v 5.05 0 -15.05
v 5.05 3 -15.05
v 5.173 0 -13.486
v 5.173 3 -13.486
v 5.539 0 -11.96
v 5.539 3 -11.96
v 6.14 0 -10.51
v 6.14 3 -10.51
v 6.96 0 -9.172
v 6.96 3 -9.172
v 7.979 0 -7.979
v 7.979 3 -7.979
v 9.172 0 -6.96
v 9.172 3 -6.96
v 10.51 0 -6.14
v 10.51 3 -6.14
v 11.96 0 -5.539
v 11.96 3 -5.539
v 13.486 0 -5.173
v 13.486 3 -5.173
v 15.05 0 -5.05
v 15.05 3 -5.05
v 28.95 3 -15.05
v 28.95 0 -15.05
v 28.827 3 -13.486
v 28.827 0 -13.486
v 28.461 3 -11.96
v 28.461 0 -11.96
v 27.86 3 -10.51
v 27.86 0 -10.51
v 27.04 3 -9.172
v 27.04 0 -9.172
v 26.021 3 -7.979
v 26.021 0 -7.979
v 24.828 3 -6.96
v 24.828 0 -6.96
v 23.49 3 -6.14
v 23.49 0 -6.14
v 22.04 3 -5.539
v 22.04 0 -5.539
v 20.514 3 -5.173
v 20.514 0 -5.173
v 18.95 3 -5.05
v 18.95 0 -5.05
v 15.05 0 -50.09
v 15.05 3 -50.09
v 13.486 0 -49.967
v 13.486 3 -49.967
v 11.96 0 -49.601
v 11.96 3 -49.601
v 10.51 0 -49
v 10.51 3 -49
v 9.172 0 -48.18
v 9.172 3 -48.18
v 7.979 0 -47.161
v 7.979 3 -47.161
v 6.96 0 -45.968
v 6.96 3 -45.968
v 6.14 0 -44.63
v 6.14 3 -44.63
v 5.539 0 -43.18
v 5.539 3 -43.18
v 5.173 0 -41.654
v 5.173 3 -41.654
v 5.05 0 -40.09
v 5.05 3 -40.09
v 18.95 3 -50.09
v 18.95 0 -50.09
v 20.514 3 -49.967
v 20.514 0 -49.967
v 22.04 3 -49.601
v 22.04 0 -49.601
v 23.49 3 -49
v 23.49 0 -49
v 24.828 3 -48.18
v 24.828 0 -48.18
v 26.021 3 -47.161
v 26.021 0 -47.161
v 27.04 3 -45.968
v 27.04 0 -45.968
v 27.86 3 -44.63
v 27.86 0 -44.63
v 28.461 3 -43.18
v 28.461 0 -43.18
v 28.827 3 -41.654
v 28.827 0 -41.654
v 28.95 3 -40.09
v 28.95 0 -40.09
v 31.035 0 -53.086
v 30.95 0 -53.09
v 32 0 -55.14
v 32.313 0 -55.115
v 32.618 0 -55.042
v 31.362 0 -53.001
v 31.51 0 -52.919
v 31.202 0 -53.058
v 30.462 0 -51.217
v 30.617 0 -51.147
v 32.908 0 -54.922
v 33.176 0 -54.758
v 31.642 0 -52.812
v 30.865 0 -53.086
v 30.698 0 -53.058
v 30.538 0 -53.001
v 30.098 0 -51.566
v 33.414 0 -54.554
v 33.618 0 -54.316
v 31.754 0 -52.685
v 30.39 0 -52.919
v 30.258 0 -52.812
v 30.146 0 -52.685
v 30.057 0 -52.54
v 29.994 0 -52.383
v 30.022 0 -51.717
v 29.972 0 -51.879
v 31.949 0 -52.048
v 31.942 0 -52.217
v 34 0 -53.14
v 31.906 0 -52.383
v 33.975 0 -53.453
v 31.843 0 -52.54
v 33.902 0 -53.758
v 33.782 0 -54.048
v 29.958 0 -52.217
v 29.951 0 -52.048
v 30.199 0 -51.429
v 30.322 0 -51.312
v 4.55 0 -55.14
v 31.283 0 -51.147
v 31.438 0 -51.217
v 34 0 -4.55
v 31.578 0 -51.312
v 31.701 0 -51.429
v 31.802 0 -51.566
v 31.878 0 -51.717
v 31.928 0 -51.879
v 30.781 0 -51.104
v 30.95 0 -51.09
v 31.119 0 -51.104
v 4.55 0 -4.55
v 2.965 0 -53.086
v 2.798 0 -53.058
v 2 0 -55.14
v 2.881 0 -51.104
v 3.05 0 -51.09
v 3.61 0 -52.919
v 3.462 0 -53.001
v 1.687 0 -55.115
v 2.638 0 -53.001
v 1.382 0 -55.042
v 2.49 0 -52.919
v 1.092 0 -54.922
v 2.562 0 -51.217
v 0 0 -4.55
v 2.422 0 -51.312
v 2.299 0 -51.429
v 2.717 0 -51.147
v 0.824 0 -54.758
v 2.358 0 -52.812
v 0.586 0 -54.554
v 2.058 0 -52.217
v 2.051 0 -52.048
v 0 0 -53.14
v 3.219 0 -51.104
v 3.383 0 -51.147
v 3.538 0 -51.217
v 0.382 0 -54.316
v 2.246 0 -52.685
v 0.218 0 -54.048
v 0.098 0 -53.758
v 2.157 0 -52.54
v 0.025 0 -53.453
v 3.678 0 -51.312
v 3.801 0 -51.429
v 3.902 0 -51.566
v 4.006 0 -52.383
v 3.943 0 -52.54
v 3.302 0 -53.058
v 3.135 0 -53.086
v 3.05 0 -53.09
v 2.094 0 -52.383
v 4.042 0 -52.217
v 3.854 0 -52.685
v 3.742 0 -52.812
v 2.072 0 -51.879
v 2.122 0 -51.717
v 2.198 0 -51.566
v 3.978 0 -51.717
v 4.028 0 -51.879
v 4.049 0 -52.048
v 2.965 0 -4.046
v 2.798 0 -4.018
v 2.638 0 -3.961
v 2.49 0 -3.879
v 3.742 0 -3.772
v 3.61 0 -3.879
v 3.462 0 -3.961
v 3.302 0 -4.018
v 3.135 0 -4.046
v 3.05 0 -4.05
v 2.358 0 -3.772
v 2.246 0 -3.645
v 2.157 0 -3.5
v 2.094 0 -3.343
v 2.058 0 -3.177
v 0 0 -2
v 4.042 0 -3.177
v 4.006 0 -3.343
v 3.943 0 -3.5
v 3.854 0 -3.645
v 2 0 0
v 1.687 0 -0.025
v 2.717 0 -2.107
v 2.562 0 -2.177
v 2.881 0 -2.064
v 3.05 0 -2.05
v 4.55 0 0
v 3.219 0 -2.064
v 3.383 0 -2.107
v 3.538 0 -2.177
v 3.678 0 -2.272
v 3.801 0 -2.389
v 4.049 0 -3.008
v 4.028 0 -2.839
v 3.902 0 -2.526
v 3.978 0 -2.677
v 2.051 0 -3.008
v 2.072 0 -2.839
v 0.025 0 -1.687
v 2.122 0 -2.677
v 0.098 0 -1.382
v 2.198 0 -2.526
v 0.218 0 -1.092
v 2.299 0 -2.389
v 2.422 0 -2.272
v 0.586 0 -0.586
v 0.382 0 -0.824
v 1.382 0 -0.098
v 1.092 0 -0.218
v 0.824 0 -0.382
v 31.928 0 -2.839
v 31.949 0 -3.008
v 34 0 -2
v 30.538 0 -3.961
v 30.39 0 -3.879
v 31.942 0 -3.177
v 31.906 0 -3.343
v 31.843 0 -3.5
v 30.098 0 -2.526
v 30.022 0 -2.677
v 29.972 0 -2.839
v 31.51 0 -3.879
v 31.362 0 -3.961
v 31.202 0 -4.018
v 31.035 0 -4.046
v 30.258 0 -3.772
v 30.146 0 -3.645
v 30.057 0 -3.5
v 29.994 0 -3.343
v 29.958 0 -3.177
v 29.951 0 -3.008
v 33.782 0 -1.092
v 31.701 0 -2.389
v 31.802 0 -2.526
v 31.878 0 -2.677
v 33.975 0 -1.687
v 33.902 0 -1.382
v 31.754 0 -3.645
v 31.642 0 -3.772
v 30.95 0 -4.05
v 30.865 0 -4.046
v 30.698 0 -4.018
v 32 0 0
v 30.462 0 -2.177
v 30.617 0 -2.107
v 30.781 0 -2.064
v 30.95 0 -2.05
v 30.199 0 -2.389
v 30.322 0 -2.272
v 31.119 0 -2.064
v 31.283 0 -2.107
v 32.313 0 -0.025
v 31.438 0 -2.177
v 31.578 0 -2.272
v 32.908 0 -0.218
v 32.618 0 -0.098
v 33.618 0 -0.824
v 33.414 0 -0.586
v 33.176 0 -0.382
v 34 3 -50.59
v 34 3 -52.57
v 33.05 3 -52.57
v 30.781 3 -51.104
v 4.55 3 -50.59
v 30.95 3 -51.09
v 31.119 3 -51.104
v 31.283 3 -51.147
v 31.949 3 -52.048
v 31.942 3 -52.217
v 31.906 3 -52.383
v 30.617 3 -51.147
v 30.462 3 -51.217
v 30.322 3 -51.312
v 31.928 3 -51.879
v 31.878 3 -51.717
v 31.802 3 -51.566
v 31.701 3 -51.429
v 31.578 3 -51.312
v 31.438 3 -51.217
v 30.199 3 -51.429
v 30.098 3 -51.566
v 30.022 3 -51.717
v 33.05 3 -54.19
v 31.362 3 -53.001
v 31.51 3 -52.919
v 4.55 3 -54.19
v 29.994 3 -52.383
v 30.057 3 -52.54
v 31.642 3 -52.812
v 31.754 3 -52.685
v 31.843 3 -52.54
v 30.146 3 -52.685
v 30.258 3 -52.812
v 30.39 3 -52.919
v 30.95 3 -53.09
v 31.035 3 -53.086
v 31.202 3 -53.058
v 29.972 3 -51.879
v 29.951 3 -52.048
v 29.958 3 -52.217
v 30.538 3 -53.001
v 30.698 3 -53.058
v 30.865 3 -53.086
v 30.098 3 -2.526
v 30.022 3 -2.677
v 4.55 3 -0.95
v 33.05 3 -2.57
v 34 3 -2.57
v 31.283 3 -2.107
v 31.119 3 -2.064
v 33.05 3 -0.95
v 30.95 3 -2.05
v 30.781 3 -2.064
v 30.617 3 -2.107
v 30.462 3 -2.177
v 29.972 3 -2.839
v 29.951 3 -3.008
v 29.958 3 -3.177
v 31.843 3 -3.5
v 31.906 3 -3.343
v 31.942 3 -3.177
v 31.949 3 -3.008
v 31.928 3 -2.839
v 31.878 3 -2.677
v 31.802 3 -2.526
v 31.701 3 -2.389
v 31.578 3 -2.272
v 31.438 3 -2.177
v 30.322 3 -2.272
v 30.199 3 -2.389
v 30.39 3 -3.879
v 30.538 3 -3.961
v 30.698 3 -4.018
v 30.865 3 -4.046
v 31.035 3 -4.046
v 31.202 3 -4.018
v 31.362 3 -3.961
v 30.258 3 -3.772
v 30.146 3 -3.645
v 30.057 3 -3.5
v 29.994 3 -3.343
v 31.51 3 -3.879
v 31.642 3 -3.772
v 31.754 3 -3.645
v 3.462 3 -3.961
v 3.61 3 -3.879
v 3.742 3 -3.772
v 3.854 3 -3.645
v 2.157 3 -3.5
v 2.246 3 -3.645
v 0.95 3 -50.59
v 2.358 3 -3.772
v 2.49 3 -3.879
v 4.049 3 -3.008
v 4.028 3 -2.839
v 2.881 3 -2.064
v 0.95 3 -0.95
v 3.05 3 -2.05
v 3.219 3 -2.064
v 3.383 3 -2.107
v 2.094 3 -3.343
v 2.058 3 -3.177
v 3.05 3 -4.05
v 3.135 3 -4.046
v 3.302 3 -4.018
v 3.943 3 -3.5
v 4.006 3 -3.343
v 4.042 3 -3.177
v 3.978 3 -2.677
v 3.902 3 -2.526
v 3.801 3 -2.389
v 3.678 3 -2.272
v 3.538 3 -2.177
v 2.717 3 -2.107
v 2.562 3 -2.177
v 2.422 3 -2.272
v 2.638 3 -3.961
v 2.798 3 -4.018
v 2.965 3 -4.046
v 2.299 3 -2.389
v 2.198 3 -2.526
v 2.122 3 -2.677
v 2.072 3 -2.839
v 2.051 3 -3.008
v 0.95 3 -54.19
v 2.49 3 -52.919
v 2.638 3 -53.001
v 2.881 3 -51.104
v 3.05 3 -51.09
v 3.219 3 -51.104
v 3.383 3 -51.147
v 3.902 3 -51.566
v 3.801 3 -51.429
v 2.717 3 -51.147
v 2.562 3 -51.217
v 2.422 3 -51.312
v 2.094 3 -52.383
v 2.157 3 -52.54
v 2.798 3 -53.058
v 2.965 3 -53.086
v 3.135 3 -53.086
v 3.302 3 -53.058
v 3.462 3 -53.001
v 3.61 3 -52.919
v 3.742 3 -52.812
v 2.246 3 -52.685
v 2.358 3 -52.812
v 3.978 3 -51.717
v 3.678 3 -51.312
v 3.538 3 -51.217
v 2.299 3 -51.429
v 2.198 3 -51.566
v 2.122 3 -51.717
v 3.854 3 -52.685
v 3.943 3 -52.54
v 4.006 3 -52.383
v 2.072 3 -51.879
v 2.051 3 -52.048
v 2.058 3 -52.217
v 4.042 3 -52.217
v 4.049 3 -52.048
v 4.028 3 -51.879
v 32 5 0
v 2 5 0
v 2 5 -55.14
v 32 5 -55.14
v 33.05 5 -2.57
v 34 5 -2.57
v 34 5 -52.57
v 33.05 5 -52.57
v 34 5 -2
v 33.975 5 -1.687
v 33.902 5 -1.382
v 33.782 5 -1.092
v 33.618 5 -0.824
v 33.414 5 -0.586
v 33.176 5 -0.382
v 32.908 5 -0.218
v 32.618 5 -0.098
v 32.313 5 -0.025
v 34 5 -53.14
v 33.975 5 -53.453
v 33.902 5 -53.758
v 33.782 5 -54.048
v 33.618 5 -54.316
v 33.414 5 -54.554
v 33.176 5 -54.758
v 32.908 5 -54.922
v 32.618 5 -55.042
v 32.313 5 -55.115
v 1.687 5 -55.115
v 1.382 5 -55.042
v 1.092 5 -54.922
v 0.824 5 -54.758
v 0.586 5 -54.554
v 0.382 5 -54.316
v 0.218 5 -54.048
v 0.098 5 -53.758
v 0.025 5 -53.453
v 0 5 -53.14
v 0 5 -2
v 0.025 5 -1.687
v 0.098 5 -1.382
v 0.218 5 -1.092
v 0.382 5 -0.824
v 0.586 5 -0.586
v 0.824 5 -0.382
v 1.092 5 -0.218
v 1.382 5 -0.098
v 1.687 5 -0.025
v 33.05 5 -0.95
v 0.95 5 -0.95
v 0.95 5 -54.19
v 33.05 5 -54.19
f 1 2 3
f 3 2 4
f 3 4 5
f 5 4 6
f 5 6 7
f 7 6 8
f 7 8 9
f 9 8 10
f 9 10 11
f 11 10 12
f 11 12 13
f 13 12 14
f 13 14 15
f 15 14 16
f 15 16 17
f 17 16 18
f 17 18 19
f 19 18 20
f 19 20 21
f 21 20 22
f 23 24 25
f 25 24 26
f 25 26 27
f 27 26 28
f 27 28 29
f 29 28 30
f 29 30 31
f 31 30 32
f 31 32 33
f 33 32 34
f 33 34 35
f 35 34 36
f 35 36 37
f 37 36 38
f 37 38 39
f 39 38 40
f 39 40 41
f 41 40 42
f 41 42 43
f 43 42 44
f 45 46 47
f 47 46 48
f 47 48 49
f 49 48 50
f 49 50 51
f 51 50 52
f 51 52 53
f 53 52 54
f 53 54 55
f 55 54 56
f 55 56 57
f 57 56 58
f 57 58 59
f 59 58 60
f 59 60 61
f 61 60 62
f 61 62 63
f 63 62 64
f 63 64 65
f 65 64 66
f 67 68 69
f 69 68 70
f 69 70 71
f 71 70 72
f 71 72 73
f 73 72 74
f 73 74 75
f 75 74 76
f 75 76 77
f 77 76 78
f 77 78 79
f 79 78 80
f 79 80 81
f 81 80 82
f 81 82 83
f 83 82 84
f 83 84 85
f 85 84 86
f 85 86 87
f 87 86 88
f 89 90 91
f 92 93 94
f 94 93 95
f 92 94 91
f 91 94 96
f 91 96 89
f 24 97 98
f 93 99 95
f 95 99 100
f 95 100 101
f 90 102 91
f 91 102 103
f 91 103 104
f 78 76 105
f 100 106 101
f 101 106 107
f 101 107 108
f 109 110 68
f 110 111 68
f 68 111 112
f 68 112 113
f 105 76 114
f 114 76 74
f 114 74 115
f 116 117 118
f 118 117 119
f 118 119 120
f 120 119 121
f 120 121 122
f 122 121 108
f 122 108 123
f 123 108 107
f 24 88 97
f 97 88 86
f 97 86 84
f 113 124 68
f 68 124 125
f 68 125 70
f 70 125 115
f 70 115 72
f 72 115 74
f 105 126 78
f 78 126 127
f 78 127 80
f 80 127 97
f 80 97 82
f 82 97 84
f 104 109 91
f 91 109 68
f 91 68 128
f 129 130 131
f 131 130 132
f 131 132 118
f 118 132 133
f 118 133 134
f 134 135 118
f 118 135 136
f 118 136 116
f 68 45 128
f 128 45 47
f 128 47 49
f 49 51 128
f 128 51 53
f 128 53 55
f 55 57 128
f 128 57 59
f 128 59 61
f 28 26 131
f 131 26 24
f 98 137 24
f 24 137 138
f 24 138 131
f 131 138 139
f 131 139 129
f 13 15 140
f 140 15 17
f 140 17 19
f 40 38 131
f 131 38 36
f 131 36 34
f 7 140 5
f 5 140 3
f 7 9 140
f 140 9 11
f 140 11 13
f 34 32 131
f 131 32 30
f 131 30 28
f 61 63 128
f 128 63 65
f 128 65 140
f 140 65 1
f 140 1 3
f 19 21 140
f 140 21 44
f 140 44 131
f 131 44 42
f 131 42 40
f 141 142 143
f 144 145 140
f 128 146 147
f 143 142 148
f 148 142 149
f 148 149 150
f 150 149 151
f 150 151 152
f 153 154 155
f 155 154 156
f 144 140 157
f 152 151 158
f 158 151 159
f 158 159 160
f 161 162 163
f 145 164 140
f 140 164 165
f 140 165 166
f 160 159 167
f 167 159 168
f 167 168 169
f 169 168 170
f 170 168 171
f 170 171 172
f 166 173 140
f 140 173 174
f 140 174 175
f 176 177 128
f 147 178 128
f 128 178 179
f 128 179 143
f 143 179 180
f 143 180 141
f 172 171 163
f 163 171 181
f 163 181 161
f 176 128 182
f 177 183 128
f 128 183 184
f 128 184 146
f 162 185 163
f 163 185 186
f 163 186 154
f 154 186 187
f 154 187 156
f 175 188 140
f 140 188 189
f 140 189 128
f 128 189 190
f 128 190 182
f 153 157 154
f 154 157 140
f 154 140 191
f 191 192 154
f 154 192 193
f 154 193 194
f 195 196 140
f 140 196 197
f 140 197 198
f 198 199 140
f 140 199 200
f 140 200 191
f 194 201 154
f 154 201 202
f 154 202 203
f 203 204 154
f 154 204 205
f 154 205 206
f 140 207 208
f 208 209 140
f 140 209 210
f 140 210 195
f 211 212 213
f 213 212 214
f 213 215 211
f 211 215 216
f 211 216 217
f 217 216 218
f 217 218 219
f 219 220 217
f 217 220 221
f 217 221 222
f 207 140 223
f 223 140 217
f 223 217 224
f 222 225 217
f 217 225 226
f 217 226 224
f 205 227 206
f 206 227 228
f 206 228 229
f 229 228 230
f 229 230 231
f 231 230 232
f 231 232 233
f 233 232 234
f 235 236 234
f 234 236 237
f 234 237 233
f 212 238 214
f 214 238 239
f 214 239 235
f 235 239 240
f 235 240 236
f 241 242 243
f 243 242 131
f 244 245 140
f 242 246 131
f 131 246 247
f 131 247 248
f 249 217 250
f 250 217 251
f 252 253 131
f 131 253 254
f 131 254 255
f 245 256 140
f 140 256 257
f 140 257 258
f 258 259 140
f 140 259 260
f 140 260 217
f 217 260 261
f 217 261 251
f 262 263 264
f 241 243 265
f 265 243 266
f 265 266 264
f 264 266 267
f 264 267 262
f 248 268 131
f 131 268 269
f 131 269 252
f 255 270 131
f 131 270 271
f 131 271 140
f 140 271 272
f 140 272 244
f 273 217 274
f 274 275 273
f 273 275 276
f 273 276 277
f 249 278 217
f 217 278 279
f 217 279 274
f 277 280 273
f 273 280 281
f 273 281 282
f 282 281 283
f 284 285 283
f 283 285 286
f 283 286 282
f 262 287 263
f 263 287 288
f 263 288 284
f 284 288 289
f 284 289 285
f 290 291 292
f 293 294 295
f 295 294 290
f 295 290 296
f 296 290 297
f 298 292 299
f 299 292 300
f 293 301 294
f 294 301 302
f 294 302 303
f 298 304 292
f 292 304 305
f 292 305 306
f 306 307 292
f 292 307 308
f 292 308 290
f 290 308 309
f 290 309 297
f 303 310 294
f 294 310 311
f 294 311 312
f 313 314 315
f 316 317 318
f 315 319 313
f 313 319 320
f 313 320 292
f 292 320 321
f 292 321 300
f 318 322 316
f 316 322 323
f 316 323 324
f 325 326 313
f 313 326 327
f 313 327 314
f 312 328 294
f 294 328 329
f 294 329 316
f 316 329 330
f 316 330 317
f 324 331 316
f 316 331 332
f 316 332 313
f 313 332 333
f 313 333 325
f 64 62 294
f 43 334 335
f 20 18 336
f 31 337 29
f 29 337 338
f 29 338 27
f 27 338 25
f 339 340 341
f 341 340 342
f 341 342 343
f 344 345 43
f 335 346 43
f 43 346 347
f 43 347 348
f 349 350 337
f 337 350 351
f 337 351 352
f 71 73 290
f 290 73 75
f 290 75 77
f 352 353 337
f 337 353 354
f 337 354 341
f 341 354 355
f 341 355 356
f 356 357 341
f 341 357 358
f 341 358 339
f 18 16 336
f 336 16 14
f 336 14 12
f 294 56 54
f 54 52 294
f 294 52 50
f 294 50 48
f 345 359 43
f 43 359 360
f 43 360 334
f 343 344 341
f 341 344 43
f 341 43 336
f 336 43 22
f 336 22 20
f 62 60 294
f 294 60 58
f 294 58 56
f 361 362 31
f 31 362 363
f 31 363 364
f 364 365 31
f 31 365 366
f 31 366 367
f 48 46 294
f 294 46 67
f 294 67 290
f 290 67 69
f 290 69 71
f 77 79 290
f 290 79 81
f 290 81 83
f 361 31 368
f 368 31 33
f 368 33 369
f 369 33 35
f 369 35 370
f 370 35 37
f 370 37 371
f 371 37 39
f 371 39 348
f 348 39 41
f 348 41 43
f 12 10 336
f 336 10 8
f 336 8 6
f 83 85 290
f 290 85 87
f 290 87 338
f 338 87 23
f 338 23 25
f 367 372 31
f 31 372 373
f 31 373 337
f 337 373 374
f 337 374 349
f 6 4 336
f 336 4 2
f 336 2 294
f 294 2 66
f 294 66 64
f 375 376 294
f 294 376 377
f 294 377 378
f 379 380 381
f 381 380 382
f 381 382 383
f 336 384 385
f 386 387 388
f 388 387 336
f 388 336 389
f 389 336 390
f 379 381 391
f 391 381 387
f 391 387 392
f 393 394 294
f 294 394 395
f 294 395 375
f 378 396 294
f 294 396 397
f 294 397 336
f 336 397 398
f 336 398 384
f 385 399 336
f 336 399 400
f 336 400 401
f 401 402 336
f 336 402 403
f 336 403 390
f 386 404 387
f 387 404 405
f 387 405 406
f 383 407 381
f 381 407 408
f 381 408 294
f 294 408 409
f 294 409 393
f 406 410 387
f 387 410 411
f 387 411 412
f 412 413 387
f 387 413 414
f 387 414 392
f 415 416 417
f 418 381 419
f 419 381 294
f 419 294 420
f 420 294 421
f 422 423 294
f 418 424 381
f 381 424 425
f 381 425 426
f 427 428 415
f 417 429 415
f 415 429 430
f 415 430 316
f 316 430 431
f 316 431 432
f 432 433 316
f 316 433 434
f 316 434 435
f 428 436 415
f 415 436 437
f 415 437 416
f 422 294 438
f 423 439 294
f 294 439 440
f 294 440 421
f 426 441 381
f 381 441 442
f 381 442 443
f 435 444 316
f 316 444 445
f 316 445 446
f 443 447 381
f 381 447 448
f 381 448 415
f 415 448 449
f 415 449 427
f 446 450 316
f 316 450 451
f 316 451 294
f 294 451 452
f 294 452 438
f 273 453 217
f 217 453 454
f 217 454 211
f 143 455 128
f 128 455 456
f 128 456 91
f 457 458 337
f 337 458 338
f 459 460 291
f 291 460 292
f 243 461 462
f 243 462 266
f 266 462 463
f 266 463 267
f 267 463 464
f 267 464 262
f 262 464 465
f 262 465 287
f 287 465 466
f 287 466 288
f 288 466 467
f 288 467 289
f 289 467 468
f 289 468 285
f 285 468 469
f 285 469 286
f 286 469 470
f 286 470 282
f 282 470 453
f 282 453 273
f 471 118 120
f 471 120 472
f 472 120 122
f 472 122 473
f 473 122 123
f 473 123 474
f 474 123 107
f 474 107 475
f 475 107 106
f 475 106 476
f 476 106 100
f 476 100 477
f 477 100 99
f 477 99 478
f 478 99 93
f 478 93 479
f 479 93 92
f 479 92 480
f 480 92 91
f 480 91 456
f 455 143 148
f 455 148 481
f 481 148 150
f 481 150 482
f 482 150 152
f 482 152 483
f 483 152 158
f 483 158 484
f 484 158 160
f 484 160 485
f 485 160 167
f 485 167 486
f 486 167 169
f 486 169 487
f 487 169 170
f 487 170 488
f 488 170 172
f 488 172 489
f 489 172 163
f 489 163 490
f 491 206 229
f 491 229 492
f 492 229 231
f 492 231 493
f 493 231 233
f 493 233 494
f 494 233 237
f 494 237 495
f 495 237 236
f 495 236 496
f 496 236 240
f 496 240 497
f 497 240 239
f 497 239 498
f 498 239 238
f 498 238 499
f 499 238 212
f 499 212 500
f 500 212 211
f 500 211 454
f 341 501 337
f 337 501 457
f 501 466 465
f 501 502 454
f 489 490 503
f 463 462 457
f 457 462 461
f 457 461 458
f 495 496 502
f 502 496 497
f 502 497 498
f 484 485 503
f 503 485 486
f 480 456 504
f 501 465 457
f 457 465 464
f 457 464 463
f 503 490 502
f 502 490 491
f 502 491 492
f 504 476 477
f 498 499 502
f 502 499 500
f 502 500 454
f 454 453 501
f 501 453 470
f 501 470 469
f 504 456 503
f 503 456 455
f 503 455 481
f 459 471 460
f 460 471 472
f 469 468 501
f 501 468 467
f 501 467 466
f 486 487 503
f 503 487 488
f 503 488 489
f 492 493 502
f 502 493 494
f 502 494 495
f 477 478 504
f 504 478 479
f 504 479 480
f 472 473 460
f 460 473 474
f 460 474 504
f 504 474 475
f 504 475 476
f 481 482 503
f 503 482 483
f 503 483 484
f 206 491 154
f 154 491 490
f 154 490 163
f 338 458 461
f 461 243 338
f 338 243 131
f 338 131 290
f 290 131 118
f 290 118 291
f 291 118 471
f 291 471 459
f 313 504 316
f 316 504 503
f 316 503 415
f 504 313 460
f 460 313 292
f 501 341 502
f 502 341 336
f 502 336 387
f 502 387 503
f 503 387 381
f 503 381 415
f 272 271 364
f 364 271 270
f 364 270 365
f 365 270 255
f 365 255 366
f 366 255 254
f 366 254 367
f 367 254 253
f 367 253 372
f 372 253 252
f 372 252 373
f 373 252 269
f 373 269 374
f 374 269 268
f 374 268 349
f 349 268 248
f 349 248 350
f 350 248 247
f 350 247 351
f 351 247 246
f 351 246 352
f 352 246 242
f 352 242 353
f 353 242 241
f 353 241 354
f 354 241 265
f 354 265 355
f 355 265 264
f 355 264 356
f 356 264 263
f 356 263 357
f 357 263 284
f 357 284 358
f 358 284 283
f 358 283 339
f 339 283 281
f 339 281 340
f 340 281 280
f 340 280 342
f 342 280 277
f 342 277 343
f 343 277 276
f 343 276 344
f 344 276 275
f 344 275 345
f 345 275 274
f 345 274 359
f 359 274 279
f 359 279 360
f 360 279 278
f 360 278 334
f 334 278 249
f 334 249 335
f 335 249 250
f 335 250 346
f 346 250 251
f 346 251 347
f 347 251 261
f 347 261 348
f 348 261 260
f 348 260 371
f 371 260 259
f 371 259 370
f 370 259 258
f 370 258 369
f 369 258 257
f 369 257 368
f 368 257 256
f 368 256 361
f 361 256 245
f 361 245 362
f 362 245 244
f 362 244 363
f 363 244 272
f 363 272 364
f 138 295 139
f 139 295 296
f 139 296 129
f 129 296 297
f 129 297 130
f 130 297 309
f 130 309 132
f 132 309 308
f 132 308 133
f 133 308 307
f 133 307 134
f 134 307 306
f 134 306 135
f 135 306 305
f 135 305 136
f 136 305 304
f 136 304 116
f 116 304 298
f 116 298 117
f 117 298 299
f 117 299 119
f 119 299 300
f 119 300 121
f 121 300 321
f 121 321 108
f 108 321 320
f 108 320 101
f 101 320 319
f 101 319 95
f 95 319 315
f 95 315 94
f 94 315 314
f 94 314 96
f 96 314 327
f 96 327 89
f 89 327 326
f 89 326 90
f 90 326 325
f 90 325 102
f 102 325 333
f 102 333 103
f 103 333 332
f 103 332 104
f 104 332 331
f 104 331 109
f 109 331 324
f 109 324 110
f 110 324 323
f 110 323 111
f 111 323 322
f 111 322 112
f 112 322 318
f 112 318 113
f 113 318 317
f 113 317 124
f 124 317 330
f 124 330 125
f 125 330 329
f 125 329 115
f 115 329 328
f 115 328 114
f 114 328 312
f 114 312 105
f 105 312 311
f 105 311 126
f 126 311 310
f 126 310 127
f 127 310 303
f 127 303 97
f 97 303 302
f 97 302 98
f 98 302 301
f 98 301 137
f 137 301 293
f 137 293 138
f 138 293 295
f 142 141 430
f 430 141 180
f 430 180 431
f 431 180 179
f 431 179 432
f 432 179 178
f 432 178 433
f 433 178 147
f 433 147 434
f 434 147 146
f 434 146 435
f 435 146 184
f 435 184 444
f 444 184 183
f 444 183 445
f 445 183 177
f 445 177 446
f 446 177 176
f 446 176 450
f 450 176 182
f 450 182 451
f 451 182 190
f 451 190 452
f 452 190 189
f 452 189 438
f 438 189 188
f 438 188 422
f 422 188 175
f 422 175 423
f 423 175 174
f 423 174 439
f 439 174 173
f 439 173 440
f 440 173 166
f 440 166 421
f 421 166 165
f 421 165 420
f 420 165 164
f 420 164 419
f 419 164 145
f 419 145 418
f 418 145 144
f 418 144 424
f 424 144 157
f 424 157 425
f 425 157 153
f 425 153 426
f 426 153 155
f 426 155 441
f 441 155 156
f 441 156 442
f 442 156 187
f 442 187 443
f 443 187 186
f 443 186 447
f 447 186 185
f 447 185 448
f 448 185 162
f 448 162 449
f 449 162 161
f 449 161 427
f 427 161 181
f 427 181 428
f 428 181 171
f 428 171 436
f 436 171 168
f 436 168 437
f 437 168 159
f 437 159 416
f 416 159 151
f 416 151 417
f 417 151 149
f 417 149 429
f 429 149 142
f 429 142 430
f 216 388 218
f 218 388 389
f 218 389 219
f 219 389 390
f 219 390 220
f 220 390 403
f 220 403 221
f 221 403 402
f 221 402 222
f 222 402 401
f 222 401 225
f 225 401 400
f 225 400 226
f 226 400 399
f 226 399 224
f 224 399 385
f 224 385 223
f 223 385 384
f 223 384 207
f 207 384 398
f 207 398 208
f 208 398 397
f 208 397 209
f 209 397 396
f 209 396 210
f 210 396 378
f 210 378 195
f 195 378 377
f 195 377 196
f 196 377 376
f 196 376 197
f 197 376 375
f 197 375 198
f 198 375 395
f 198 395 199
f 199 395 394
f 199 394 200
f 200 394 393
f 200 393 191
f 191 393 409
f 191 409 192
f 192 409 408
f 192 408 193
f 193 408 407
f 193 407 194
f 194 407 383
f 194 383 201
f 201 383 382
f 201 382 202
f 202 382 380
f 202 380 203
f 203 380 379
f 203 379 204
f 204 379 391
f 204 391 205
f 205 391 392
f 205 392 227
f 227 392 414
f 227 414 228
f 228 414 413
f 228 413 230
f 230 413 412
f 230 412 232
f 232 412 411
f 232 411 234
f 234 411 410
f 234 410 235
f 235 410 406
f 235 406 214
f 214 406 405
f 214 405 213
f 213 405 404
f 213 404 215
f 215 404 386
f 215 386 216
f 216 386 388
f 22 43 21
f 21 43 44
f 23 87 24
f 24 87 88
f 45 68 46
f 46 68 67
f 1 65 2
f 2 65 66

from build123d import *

# Parameters (mm, degrees)
SKETCH_1_W          = 34
SKETCH_1_H          = 55.14
EXTRUDE_1_DEPTH     = 5
SKETCH_2_W          = 32.1
SKETCH_2_H          = 53.24
CUT_EXTRUDE_1_DEPTH = 2
SKETCH_3_W          = 50
SKETCH_3_H          = 10
CUT_EXTRUDE_2_DEPTH = 2
FILLET_3_R          = 2
FILLET_4_R          = 2
FILLET_5_R          = 2
FILLET_6_R          = 2
SKETCH_5_R          = 1
CUT_EXTRUDE_3_DEPTH = 5
CUT_EXTRUDE_5_DEPTH = 5
SKETCH_7_W          = 24.577640881
SKETCH_7_H          = 46.089683544
EXTRUDE_3_DEPTH     = 3
SKETCH_8_W          = 20
SKETCH_8_H          = 6
EXTRUDE_5_DEPTH     = 5
SKETCH_9_W          = 20
SKETCH_9_H          = 6
EXTRUDE_6_DEPTH     = 5
CUT_EXTRUDE_6_DEPTH = 65.972452624
FILLET_7_R          = 2
FILLET_8_R          = 2
FILLET_9_R          = 2
FILLET_10_R         = 2
FILLET_11_R         = 2
FILLET_12_R         = 2
FILLET_13_R         = 2
FILLET_14_R         = 2
SKETCH_11_W         = 2
SKETCH_11_H         = 50
EXTRUDE_7_DEPTH     = 3
SKETCH_12_W         = 87.292454737
SKETCH_12_H         = 120.507181867
CUT_EXTRUDE_7_DEPTH = 10
SKETCH_13_W         = 23.9
SKETCH_13_H         = 45.04
CUT_EXTRUDE_8_DEPTH = 10
FILLET_15_R         = 10
FILLET_16_R         = 10
FILLET_17_R         = 10
FILLET_18_R         = 10


with BuildPart() as part:
    # 草图1 → 凸台-拉伸1 (new body)
    with BuildSketch(Plane(origin=(0, 0, 0), x_dir=(1, 0, 0), z_dir=(0, 1, 0))):
        with Locations((17, 27.57)):
            Rectangle(SKETCH_1_W, SKETCH_1_H)
    extrude(amount=EXTRUDE_1_DEPTH)

    # 草图2 → 切除-拉伸1 (cut)
    with BuildSketch(Plane(origin=(0, 5, 0), x_dir=(1, 0, 0), z_dir=(0, 1, 0))):
        with Locations((17, 27.57)):
            Rectangle(SKETCH_2_W, SKETCH_2_H)
    extrude(amount=-CUT_EXTRUDE_1_DEPTH, mode=Mode.SUBTRACT)

    # 草图3 → 切除-拉伸2 (cut)
    with BuildSketch(Plane(origin=(34, 0, 0), x_dir=(0, 0, -1), z_dir=(1, 0, 0))):
        with Locations((27.57, 5)):
            Rectangle(SKETCH_3_W, SKETCH_3_H)
    extrude(amount=-CUT_EXTRUDE_2_DEPTH, mode=Mode.SUBTRACT)

    # 圆角3
    fillet_3_edges = [part.edges().sort_by_distance(p)[0] for p in [
        (0, 2.5, 0),
    ]]
    fillet(fillet_3_edges, radius=FILLET_3_R)

    # 圆角4
    fillet_4_edges = [part.edges().sort_by_distance(p)[0] for p in [
        (0, 2.5, -55.14),
    ]]
    fillet(fillet_4_edges, radius=FILLET_4_R)

    # 圆角5
    fillet_5_edges = [part.edges().sort_by_distance(p)[0] for p in [
        (34, 2.5, -55.14),
    ]]
    fillet(fillet_5_edges, radius=FILLET_5_R)

    # 圆角6
    fillet_6_edges = [part.edges().sort_by_distance(p)[0] for p in [
        (34, 2.5, 0),
    ]]
    fillet(fillet_6_edges, radius=FILLET_6_R)

    # 草图5 → 切除-拉伸3 (cut)
    with BuildSketch(Plane(origin=(0, 3, 0), x_dir=(1, 0, 0), z_dir=(0, 1, 0))):
        with Locations(Location((3.05, 52.09, 0), (0, 0, 270))):
            Circle(SKETCH_5_R)
        with Locations(Location((3.05, 3.05, 0), (0, 0, 90))):
            Circle(SKETCH_5_R)
        with Locations(Location((30.95, 3.05, 0), (0, 0, 270))):
            Circle(SKETCH_5_R)
        with Locations(Location((30.95, 52.09, 0), (0, 0, 90))):
            Circle(SKETCH_5_R)
    extrude(amount=-CUT_EXTRUDE_3_DEPTH, mode=Mode.SUBTRACT)

    # 草图6 → 切除-拉伸5 (cut)
    with BuildSketch(Plane(origin=(0, 3, 0), x_dir=(1, 0, 0), z_dir=(0, 1, 0))):
        with BuildLine():
            ThreePointArc((5.05, 49.09), (5.342893219, 49.797106781), (6.05, 50.09))
            Line((6.05, 50.09), (6.254717451, 50.09))
            ThreePointArc((6.254717451, 50.09), (6.961824232, 49.797106781), (7.254717451, 49.09))
            Line((7.254717451, 49.09), (7.254717451, 6.05))
            ThreePointArc((7.254717451, 6.05), (6.961824232, 5.342893219), (6.254717451, 5.05))
            Line((6.254717451, 5.05), (6.05, 5.05))
            ThreePointArc((6.05, 5.05), (5.342893219, 5.342893219), (5.05, 6.05))
            Line((5.05, 6.05), (5.05, 49.09))
        make_face()
        with BuildLine():
            ThreePointArc((10.05, 49.09), (10.342893219, 49.797106781), (11.05, 50.09))
            Line((11.05, 50.09), (11.254717451, 50.09))
            ThreePointArc((11.254717451, 50.09), (11.961824232, 49.797106781), (12.254717451, 49.09))
            Line((12.254717451, 49.09), (12.254717451, 6.05))
            ThreePointArc((12.254717451, 6.05), (11.961824232, 5.342893219), (11.254717451, 5.05))
            Line((11.254717451, 5.05), (11.05, 5.05))
            ThreePointArc((11.05, 5.05), (10.342893219, 5.342893219), (10.05, 6.05))
            Line((10.05, 6.05), (10.05, 49.09))
        make_face()
        with BuildLine():
            ThreePointArc((20.05, 49.09), (20.342893219, 49.797106781), (21.05, 50.09))
            Line((21.05, 50.09), (21.254717451, 50.09))
            ThreePointArc((21.254717451, 50.09), (21.961824232, 49.797106781), (22.254717451, 49.09))
            Line((22.254717451, 49.09), (22.254717451, 6.05))
            ThreePointArc((22.254717451, 6.05), (21.961824232, 5.342893219), (21.254717451, 5.05))
            Line((21.254717451, 5.05), (21.05, 5.05))
            ThreePointArc((21.05, 5.05), (20.342893219, 5.342893219), (20.05, 6.05))
            Line((20.05, 6.05), (20.05, 49.09))
        make_face()
        with BuildLine():
            ThreePointArc((26.05, 5.05), (25.342893219, 5.342893219), (25.05, 6.05))
            Line((25.05, 6.05), (25.05, 49.09))
            ThreePointArc((25.05, 49.09), (25.342893219, 49.797106781), (26.05, 50.09))
            Line((26.05, 50.09), (26.254717451, 50.09))
            ThreePointArc((26.254717451, 50.09), (26.961824232, 49.797106781), (27.254717451, 49.09))
            Line((27.254717451, 49.09), (27.254717451, 6.05))
            ThreePointArc((27.254717451, 6.05), (26.961824232, 5.342893219), (26.254717451, 5.05))
            Line((26.254717451, 5.05), (26.05, 5.05))
        make_face()
        with BuildLine():
            Line((15.05, 49.09), (15.05, 6.05))
            ThreePointArc((15.05, 6.05), (15.342893219, 5.342893219), (16.05, 5.05))
            Line((16.05, 5.05), (16.254717451, 5.05))
            ThreePointArc((16.254717451, 5.05), (16.961824232, 5.342893219), (17.254717451, 6.05))
            Line((17.254717451, 6.05), (17.254717451, 49.09))
            ThreePointArc((17.254717451, 49.09), (16.961824232, 49.797106781), (16.254717451, 50.09))
            Line((16.254717451, 50.09), (16.05, 50.09))
            ThreePointArc((16.05, 50.09), (15.342893219, 49.797106781), (15.05, 49.09))
        make_face()
    extrude(amount=-CUT_EXTRUDE_5_DEPTH, mode=Mode.SUBTRACT)

    # 草图7 → 凸台-拉伸3 (add)
    with BuildSketch(Plane.XZ):
        with Locations((15.625766317, -27.57)):
            Rectangle(SKETCH_7_W, SKETCH_7_H)
    extrude(amount=-EXTRUDE_3_DEPTH)

    # 草图8 → 凸台-拉伸5 (add)
    with BuildSketch(Plane.XZ):
        with Locations((17, -3)):
            Rectangle(SKETCH_8_W, SKETCH_8_H)
    extrude(amount=EXTRUDE_5_DEPTH)

    # 草图9 → 凸台-拉伸6 (add)
    with BuildSketch(Plane.XZ):
        with Locations((17, -52.14)):
            Rectangle(SKETCH_9_W, SKETCH_9_H)
    extrude(amount=EXTRUDE_6_DEPTH)

    # 草图10 → 切除-拉伸6 (cut, through all)
    with BuildSketch(Plane(origin=(0, 0, -55.14), x_dir=(-1, 0, 0), z_dir=(0, 0, -1))):
        with BuildLine():
            ThreePointArc((-8, -2.5), (-11.414213562, -1.085786438), (-10, -4.5))
            Line((-10, -4.5), (-10, -2.5))
            Line((-10, -2.5), (-8, -2.5))
        make_face()
        with BuildLine():
            Line((-10, -2.5), (-10, -4.5))
            ThreePointArc((-10, -4.5), (-8.585786438, -3.914213562), (-8, -2.5))
            Line((-8, -2.5), (-10, -2.5))
        make_face()
        with BuildLine():
            ThreePointArc((-26, -2.5), (-25.414213562, -3.914213562), (-24, -4.5))
            Line((-24, -4.5), (-24, -2.5))
            Line((-24, -2.5), (-26, -2.5))
        make_face()
        with BuildLine():
            Line((-24, -2.5), (-24, -4.5))
            ThreePointArc((-24, -4.5), (-22.585786438, -3.914213562), (-22, -2.5))
            ThreePointArc((-22, -2.5), (-24, -0.5), (-26, -2.5))
            Line((-26, -2.5), (-24, -2.5))
        make_face()
    extrude(amount=-CUT_EXTRUDE_6_DEPTH, mode=Mode.SUBTRACT)

    # 圆角7
    fillet_7_edges = [part.edges().sort_by_distance(p)[0] for p in [
        (7, -5, -52.14),
    ]]
    fillet(fillet_7_edges, radius=FILLET_7_R)

    # 圆角8
    fillet_8_edges = [part.edges().sort_by_distance(p)[0] for p in [
        (7, 0, -52.14),
    ]]
    fillet(fillet_8_edges, radius=FILLET_8_R)

    # 圆角9
    fillet_9_edges = [part.edges().sort_by_distance(p)[0] for p in [
        (27, -5, -52.14),
    ]]
    fillet(fillet_9_edges, radius=FILLET_9_R)

    # 圆角10
    fillet_10_edges = [part.edges().sort_by_distance(p)[0] for p in [
        (27, 0, -52.14),
    ]]
    fillet(fillet_10_edges, radius=FILLET_10_R)

    # 圆角11
    fillet_11_edges = [part.edges().sort_by_distance(p)[0] for p in [
        (7, -5, -3),
    ]]
    fillet(fillet_11_edges, radius=FILLET_11_R)

    # 圆角12
    fillet_12_edges = [part.edges().sort_by_distance(p)[0] for p in [
        (7, 0, -3),
    ]]
    fillet(fillet_12_edges, radius=FILLET_12_R)

    # 圆角13
    fillet_13_edges = [part.edges().sort_by_distance(p)[0] for p in [
        (27, -5, -3),
    ]]
    fillet(fillet_13_edges, radius=FILLET_13_R)

    # 圆角14
    fillet_14_edges = [part.edges().sort_by_distance(p)[0] for p in [
        (27, 0, -3),
    ]]
    fillet(fillet_14_edges, radius=FILLET_14_R)

    # 草图11 → 凸台-拉伸7 (add)
    with BuildSketch(Plane.XZ):
        with Locations((33, -27.57)):
            Rectangle(SKETCH_11_W, SKETCH_11_H)
    extrude(amount=-EXTRUDE_7_DEPTH)

    # 草图12 → 切除-拉伸7 (cut)
    with BuildSketch(Plane.XZ):
        with Locations((-3.68135744, 1.129600161)):
            Rectangle(SKETCH_12_W, SKETCH_12_H)
    extrude(amount=CUT_EXTRUDE_7_DEPTH, mode=Mode.SUBTRACT)

    # 草图13 → 切除-拉伸8 (cut)
    with BuildSketch(Plane.XZ):
        with Locations((17, -27.57)):
            Rectangle(SKETCH_13_W, SKETCH_13_H)
    extrude(amount=-CUT_EXTRUDE_8_DEPTH, mode=Mode.SUBTRACT)

    # 圆角15
    fillet_15_edges = [part.edges().sort_by_distance(p)[0] for p in [
        (28.95, 1.5, -50.09),
    ]]
    fillet(fillet_15_edges, radius=FILLET_15_R)

    # 圆角16
    fillet_16_edges = [part.edges().sort_by_distance(p)[0] for p in [
        (5.05, 1.5, -50.09),
    ]]
    fillet(fillet_16_edges, radius=FILLET_16_R)

    # 圆角17
    fillet_17_edges = [part.edges().sort_by_distance(p)[0] for p in [
        (28.95, 1.5, -5.05),
    ]]
    fillet(fillet_17_edges, radius=FILLET_17_R)

    # 圆角18
    fillet_18_edges = [part.edges().sort_by_distance(p)[0] for p in [
        (5.05, 1.5, -5.05),
    ]]
    fillet(fillet_18_edges, radius=FILLET_18_R)


solid = part.part
